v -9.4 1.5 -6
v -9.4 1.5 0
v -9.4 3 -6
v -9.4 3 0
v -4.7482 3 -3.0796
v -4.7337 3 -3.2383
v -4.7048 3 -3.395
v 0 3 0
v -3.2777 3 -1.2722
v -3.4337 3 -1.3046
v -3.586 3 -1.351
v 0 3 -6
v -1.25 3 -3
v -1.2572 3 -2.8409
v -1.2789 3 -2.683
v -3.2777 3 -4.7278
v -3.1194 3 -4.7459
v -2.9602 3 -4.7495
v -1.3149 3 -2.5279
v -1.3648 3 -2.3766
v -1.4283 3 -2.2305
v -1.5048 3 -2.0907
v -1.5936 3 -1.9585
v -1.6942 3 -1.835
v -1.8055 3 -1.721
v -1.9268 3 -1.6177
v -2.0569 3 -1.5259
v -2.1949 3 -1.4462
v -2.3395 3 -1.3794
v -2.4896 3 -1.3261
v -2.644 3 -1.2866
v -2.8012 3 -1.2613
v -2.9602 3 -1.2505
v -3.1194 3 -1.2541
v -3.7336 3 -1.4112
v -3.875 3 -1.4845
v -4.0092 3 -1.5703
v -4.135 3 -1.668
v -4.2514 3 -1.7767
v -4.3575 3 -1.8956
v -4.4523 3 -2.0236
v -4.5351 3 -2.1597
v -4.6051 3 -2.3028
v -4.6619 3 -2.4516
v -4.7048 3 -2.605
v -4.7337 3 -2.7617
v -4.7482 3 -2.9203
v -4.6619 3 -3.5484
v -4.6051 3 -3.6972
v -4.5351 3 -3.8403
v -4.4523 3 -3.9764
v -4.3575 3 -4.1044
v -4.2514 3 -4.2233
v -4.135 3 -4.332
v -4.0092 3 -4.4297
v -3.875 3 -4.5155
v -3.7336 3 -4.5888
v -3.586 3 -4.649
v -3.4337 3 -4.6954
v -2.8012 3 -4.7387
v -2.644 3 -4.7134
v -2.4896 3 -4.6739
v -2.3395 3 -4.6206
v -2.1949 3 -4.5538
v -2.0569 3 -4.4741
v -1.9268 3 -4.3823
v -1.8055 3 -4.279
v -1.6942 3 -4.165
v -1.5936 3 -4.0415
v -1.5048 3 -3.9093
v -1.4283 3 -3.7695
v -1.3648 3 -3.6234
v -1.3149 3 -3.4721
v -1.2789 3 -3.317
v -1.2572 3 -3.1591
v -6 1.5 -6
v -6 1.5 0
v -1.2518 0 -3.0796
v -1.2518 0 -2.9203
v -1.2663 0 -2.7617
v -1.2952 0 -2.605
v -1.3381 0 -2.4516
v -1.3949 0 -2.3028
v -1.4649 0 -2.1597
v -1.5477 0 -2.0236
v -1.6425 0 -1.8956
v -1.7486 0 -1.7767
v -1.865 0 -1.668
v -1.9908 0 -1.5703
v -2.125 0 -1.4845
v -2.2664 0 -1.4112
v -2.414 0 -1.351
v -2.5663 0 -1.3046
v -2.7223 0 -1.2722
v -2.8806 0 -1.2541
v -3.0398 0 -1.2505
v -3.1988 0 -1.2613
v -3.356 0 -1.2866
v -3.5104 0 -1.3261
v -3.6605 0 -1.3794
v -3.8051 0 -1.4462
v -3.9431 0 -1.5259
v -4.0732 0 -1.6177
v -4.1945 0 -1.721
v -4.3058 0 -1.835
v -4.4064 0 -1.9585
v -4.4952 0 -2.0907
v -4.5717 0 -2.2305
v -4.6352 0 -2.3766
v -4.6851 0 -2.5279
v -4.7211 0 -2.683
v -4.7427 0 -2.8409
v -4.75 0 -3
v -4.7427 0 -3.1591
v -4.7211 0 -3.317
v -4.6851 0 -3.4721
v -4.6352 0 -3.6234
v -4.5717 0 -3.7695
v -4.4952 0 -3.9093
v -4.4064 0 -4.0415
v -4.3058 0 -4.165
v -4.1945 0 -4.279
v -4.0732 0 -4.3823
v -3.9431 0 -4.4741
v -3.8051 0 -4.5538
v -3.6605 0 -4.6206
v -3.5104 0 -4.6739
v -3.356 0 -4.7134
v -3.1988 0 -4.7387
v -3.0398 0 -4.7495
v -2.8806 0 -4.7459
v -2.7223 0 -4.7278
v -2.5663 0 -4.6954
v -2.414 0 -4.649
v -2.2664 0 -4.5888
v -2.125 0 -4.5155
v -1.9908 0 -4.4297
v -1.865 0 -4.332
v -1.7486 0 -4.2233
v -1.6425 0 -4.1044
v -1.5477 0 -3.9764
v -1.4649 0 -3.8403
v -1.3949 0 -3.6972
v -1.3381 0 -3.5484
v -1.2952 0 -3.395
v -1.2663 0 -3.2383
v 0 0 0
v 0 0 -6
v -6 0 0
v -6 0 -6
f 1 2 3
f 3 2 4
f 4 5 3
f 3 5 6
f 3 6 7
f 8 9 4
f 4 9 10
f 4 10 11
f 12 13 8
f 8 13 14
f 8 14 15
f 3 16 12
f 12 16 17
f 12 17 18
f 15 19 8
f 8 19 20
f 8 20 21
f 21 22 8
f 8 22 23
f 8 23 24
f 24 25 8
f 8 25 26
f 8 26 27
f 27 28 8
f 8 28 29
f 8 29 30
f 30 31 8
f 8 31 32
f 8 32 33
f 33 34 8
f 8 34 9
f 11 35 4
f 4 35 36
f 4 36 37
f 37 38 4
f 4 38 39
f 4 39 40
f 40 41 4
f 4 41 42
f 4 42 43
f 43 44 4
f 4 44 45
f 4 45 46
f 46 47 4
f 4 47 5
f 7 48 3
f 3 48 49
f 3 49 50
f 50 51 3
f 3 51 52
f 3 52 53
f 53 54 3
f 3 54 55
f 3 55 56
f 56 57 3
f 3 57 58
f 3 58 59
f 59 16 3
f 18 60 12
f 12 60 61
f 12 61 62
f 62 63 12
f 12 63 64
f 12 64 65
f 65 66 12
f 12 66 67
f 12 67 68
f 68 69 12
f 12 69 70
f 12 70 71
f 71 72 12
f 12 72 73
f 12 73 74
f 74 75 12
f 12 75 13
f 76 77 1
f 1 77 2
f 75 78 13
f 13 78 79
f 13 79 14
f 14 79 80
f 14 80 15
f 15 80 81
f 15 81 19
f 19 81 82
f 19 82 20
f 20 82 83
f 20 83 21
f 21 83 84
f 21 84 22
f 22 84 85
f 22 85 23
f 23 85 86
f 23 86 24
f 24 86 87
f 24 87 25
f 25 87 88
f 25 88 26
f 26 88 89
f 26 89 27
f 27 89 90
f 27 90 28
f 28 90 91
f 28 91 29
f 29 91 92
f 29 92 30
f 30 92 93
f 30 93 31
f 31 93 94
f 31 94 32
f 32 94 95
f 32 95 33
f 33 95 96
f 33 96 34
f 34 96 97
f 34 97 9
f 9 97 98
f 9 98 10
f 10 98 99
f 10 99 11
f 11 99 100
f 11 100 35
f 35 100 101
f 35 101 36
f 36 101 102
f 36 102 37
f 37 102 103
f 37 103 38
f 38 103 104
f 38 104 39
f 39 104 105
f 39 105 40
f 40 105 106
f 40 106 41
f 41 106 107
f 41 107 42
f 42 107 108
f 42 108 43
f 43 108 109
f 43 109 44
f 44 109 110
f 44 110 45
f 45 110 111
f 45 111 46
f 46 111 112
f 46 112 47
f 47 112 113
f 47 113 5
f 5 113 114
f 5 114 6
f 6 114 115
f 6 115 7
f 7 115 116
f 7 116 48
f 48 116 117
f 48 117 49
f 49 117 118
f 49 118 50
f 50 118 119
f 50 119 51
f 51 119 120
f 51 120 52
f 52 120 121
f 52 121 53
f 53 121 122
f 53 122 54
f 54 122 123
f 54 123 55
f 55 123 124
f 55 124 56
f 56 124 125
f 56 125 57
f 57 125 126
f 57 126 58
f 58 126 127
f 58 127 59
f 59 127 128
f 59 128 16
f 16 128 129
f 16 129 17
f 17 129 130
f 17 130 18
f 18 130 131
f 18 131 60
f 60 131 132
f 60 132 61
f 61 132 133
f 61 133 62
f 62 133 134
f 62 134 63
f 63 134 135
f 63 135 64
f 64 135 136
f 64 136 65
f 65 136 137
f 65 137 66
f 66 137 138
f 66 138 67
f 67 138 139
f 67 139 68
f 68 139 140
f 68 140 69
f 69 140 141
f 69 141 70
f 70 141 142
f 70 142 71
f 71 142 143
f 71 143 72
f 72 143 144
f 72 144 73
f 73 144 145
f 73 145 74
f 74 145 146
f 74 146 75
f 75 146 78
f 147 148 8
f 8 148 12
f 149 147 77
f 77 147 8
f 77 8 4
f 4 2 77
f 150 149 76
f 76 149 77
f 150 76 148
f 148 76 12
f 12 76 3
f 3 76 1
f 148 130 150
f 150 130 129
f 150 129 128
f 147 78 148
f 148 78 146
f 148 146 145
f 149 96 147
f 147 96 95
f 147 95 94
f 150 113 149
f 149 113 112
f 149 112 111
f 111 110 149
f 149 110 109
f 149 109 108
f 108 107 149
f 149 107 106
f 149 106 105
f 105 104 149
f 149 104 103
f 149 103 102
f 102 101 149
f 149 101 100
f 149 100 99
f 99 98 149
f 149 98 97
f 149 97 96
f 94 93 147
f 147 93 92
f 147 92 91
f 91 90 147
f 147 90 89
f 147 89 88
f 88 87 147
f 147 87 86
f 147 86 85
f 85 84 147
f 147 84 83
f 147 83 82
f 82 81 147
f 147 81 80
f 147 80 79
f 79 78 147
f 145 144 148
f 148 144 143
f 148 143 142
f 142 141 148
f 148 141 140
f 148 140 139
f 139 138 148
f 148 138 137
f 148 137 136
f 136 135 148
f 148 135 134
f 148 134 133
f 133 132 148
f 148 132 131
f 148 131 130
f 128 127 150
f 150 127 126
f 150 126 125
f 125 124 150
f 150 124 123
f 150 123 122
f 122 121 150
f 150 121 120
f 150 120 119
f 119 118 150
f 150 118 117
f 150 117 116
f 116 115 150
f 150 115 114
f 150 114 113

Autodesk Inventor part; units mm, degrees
ref_plane "YZ Plane" through (0, 0, 0) normal (1, 0, 0) x (0, 1, 0)
ref_plane "XZ Plane" through (0, 0, 0) normal (0, 1, 0) x (-1, 0, 0)
ref_plane "XY Plane" through (0, 0, 0) normal (0, 0, 1) x (1, 0, 0)
sketch "Sketch1" plane through (0, 0, 0) normal (0, 1, 0) x (-1, 0, 0)
  line L0 (0, 0) -> (6, 0)
  line L1 (6, 0) -> (6, -6)
  line L2 (6, -6) -> (0, -6)
  line L3 (0, -6) -> (0, 0)
  circle A0 centre (3, -3) radius 1.75
  dimension "d0" = 6
  dimension "d1" = 6
  dimension "d2" = 3.5
extrude "Extrusion1" add sketch "Sketch1" along normal blind 1.5
sketch "Sketch2" plane through (0, 1.5, 0) normal (0, 1, 0) x (1, 0, 0)
  line L0 (0, 6) -> (-6, 6) projected
  line L1 (-6, 6) -> (-6, 0) projected
  line L2 (-6, 0) -> (0, 0) projected
  line L3 (0, 0) -> (0, 6) projected
  circle A0 centre (-3, 3) radius 1.75 projected
  line L4 (-6, 0) -> (-9.4, 0)
  line L5 (-9.4, 0) -> (-9.4, 6)
  line L6 (-9.4, 6) -> (-6, 6)
  line L7 (-6, 6) -> (-6, 0)
  dimension "d5" = 3.4
extrude "Extrusion2" add sketch "Sketch2" along normal blind 1.5
properties part number "12Vnub"
